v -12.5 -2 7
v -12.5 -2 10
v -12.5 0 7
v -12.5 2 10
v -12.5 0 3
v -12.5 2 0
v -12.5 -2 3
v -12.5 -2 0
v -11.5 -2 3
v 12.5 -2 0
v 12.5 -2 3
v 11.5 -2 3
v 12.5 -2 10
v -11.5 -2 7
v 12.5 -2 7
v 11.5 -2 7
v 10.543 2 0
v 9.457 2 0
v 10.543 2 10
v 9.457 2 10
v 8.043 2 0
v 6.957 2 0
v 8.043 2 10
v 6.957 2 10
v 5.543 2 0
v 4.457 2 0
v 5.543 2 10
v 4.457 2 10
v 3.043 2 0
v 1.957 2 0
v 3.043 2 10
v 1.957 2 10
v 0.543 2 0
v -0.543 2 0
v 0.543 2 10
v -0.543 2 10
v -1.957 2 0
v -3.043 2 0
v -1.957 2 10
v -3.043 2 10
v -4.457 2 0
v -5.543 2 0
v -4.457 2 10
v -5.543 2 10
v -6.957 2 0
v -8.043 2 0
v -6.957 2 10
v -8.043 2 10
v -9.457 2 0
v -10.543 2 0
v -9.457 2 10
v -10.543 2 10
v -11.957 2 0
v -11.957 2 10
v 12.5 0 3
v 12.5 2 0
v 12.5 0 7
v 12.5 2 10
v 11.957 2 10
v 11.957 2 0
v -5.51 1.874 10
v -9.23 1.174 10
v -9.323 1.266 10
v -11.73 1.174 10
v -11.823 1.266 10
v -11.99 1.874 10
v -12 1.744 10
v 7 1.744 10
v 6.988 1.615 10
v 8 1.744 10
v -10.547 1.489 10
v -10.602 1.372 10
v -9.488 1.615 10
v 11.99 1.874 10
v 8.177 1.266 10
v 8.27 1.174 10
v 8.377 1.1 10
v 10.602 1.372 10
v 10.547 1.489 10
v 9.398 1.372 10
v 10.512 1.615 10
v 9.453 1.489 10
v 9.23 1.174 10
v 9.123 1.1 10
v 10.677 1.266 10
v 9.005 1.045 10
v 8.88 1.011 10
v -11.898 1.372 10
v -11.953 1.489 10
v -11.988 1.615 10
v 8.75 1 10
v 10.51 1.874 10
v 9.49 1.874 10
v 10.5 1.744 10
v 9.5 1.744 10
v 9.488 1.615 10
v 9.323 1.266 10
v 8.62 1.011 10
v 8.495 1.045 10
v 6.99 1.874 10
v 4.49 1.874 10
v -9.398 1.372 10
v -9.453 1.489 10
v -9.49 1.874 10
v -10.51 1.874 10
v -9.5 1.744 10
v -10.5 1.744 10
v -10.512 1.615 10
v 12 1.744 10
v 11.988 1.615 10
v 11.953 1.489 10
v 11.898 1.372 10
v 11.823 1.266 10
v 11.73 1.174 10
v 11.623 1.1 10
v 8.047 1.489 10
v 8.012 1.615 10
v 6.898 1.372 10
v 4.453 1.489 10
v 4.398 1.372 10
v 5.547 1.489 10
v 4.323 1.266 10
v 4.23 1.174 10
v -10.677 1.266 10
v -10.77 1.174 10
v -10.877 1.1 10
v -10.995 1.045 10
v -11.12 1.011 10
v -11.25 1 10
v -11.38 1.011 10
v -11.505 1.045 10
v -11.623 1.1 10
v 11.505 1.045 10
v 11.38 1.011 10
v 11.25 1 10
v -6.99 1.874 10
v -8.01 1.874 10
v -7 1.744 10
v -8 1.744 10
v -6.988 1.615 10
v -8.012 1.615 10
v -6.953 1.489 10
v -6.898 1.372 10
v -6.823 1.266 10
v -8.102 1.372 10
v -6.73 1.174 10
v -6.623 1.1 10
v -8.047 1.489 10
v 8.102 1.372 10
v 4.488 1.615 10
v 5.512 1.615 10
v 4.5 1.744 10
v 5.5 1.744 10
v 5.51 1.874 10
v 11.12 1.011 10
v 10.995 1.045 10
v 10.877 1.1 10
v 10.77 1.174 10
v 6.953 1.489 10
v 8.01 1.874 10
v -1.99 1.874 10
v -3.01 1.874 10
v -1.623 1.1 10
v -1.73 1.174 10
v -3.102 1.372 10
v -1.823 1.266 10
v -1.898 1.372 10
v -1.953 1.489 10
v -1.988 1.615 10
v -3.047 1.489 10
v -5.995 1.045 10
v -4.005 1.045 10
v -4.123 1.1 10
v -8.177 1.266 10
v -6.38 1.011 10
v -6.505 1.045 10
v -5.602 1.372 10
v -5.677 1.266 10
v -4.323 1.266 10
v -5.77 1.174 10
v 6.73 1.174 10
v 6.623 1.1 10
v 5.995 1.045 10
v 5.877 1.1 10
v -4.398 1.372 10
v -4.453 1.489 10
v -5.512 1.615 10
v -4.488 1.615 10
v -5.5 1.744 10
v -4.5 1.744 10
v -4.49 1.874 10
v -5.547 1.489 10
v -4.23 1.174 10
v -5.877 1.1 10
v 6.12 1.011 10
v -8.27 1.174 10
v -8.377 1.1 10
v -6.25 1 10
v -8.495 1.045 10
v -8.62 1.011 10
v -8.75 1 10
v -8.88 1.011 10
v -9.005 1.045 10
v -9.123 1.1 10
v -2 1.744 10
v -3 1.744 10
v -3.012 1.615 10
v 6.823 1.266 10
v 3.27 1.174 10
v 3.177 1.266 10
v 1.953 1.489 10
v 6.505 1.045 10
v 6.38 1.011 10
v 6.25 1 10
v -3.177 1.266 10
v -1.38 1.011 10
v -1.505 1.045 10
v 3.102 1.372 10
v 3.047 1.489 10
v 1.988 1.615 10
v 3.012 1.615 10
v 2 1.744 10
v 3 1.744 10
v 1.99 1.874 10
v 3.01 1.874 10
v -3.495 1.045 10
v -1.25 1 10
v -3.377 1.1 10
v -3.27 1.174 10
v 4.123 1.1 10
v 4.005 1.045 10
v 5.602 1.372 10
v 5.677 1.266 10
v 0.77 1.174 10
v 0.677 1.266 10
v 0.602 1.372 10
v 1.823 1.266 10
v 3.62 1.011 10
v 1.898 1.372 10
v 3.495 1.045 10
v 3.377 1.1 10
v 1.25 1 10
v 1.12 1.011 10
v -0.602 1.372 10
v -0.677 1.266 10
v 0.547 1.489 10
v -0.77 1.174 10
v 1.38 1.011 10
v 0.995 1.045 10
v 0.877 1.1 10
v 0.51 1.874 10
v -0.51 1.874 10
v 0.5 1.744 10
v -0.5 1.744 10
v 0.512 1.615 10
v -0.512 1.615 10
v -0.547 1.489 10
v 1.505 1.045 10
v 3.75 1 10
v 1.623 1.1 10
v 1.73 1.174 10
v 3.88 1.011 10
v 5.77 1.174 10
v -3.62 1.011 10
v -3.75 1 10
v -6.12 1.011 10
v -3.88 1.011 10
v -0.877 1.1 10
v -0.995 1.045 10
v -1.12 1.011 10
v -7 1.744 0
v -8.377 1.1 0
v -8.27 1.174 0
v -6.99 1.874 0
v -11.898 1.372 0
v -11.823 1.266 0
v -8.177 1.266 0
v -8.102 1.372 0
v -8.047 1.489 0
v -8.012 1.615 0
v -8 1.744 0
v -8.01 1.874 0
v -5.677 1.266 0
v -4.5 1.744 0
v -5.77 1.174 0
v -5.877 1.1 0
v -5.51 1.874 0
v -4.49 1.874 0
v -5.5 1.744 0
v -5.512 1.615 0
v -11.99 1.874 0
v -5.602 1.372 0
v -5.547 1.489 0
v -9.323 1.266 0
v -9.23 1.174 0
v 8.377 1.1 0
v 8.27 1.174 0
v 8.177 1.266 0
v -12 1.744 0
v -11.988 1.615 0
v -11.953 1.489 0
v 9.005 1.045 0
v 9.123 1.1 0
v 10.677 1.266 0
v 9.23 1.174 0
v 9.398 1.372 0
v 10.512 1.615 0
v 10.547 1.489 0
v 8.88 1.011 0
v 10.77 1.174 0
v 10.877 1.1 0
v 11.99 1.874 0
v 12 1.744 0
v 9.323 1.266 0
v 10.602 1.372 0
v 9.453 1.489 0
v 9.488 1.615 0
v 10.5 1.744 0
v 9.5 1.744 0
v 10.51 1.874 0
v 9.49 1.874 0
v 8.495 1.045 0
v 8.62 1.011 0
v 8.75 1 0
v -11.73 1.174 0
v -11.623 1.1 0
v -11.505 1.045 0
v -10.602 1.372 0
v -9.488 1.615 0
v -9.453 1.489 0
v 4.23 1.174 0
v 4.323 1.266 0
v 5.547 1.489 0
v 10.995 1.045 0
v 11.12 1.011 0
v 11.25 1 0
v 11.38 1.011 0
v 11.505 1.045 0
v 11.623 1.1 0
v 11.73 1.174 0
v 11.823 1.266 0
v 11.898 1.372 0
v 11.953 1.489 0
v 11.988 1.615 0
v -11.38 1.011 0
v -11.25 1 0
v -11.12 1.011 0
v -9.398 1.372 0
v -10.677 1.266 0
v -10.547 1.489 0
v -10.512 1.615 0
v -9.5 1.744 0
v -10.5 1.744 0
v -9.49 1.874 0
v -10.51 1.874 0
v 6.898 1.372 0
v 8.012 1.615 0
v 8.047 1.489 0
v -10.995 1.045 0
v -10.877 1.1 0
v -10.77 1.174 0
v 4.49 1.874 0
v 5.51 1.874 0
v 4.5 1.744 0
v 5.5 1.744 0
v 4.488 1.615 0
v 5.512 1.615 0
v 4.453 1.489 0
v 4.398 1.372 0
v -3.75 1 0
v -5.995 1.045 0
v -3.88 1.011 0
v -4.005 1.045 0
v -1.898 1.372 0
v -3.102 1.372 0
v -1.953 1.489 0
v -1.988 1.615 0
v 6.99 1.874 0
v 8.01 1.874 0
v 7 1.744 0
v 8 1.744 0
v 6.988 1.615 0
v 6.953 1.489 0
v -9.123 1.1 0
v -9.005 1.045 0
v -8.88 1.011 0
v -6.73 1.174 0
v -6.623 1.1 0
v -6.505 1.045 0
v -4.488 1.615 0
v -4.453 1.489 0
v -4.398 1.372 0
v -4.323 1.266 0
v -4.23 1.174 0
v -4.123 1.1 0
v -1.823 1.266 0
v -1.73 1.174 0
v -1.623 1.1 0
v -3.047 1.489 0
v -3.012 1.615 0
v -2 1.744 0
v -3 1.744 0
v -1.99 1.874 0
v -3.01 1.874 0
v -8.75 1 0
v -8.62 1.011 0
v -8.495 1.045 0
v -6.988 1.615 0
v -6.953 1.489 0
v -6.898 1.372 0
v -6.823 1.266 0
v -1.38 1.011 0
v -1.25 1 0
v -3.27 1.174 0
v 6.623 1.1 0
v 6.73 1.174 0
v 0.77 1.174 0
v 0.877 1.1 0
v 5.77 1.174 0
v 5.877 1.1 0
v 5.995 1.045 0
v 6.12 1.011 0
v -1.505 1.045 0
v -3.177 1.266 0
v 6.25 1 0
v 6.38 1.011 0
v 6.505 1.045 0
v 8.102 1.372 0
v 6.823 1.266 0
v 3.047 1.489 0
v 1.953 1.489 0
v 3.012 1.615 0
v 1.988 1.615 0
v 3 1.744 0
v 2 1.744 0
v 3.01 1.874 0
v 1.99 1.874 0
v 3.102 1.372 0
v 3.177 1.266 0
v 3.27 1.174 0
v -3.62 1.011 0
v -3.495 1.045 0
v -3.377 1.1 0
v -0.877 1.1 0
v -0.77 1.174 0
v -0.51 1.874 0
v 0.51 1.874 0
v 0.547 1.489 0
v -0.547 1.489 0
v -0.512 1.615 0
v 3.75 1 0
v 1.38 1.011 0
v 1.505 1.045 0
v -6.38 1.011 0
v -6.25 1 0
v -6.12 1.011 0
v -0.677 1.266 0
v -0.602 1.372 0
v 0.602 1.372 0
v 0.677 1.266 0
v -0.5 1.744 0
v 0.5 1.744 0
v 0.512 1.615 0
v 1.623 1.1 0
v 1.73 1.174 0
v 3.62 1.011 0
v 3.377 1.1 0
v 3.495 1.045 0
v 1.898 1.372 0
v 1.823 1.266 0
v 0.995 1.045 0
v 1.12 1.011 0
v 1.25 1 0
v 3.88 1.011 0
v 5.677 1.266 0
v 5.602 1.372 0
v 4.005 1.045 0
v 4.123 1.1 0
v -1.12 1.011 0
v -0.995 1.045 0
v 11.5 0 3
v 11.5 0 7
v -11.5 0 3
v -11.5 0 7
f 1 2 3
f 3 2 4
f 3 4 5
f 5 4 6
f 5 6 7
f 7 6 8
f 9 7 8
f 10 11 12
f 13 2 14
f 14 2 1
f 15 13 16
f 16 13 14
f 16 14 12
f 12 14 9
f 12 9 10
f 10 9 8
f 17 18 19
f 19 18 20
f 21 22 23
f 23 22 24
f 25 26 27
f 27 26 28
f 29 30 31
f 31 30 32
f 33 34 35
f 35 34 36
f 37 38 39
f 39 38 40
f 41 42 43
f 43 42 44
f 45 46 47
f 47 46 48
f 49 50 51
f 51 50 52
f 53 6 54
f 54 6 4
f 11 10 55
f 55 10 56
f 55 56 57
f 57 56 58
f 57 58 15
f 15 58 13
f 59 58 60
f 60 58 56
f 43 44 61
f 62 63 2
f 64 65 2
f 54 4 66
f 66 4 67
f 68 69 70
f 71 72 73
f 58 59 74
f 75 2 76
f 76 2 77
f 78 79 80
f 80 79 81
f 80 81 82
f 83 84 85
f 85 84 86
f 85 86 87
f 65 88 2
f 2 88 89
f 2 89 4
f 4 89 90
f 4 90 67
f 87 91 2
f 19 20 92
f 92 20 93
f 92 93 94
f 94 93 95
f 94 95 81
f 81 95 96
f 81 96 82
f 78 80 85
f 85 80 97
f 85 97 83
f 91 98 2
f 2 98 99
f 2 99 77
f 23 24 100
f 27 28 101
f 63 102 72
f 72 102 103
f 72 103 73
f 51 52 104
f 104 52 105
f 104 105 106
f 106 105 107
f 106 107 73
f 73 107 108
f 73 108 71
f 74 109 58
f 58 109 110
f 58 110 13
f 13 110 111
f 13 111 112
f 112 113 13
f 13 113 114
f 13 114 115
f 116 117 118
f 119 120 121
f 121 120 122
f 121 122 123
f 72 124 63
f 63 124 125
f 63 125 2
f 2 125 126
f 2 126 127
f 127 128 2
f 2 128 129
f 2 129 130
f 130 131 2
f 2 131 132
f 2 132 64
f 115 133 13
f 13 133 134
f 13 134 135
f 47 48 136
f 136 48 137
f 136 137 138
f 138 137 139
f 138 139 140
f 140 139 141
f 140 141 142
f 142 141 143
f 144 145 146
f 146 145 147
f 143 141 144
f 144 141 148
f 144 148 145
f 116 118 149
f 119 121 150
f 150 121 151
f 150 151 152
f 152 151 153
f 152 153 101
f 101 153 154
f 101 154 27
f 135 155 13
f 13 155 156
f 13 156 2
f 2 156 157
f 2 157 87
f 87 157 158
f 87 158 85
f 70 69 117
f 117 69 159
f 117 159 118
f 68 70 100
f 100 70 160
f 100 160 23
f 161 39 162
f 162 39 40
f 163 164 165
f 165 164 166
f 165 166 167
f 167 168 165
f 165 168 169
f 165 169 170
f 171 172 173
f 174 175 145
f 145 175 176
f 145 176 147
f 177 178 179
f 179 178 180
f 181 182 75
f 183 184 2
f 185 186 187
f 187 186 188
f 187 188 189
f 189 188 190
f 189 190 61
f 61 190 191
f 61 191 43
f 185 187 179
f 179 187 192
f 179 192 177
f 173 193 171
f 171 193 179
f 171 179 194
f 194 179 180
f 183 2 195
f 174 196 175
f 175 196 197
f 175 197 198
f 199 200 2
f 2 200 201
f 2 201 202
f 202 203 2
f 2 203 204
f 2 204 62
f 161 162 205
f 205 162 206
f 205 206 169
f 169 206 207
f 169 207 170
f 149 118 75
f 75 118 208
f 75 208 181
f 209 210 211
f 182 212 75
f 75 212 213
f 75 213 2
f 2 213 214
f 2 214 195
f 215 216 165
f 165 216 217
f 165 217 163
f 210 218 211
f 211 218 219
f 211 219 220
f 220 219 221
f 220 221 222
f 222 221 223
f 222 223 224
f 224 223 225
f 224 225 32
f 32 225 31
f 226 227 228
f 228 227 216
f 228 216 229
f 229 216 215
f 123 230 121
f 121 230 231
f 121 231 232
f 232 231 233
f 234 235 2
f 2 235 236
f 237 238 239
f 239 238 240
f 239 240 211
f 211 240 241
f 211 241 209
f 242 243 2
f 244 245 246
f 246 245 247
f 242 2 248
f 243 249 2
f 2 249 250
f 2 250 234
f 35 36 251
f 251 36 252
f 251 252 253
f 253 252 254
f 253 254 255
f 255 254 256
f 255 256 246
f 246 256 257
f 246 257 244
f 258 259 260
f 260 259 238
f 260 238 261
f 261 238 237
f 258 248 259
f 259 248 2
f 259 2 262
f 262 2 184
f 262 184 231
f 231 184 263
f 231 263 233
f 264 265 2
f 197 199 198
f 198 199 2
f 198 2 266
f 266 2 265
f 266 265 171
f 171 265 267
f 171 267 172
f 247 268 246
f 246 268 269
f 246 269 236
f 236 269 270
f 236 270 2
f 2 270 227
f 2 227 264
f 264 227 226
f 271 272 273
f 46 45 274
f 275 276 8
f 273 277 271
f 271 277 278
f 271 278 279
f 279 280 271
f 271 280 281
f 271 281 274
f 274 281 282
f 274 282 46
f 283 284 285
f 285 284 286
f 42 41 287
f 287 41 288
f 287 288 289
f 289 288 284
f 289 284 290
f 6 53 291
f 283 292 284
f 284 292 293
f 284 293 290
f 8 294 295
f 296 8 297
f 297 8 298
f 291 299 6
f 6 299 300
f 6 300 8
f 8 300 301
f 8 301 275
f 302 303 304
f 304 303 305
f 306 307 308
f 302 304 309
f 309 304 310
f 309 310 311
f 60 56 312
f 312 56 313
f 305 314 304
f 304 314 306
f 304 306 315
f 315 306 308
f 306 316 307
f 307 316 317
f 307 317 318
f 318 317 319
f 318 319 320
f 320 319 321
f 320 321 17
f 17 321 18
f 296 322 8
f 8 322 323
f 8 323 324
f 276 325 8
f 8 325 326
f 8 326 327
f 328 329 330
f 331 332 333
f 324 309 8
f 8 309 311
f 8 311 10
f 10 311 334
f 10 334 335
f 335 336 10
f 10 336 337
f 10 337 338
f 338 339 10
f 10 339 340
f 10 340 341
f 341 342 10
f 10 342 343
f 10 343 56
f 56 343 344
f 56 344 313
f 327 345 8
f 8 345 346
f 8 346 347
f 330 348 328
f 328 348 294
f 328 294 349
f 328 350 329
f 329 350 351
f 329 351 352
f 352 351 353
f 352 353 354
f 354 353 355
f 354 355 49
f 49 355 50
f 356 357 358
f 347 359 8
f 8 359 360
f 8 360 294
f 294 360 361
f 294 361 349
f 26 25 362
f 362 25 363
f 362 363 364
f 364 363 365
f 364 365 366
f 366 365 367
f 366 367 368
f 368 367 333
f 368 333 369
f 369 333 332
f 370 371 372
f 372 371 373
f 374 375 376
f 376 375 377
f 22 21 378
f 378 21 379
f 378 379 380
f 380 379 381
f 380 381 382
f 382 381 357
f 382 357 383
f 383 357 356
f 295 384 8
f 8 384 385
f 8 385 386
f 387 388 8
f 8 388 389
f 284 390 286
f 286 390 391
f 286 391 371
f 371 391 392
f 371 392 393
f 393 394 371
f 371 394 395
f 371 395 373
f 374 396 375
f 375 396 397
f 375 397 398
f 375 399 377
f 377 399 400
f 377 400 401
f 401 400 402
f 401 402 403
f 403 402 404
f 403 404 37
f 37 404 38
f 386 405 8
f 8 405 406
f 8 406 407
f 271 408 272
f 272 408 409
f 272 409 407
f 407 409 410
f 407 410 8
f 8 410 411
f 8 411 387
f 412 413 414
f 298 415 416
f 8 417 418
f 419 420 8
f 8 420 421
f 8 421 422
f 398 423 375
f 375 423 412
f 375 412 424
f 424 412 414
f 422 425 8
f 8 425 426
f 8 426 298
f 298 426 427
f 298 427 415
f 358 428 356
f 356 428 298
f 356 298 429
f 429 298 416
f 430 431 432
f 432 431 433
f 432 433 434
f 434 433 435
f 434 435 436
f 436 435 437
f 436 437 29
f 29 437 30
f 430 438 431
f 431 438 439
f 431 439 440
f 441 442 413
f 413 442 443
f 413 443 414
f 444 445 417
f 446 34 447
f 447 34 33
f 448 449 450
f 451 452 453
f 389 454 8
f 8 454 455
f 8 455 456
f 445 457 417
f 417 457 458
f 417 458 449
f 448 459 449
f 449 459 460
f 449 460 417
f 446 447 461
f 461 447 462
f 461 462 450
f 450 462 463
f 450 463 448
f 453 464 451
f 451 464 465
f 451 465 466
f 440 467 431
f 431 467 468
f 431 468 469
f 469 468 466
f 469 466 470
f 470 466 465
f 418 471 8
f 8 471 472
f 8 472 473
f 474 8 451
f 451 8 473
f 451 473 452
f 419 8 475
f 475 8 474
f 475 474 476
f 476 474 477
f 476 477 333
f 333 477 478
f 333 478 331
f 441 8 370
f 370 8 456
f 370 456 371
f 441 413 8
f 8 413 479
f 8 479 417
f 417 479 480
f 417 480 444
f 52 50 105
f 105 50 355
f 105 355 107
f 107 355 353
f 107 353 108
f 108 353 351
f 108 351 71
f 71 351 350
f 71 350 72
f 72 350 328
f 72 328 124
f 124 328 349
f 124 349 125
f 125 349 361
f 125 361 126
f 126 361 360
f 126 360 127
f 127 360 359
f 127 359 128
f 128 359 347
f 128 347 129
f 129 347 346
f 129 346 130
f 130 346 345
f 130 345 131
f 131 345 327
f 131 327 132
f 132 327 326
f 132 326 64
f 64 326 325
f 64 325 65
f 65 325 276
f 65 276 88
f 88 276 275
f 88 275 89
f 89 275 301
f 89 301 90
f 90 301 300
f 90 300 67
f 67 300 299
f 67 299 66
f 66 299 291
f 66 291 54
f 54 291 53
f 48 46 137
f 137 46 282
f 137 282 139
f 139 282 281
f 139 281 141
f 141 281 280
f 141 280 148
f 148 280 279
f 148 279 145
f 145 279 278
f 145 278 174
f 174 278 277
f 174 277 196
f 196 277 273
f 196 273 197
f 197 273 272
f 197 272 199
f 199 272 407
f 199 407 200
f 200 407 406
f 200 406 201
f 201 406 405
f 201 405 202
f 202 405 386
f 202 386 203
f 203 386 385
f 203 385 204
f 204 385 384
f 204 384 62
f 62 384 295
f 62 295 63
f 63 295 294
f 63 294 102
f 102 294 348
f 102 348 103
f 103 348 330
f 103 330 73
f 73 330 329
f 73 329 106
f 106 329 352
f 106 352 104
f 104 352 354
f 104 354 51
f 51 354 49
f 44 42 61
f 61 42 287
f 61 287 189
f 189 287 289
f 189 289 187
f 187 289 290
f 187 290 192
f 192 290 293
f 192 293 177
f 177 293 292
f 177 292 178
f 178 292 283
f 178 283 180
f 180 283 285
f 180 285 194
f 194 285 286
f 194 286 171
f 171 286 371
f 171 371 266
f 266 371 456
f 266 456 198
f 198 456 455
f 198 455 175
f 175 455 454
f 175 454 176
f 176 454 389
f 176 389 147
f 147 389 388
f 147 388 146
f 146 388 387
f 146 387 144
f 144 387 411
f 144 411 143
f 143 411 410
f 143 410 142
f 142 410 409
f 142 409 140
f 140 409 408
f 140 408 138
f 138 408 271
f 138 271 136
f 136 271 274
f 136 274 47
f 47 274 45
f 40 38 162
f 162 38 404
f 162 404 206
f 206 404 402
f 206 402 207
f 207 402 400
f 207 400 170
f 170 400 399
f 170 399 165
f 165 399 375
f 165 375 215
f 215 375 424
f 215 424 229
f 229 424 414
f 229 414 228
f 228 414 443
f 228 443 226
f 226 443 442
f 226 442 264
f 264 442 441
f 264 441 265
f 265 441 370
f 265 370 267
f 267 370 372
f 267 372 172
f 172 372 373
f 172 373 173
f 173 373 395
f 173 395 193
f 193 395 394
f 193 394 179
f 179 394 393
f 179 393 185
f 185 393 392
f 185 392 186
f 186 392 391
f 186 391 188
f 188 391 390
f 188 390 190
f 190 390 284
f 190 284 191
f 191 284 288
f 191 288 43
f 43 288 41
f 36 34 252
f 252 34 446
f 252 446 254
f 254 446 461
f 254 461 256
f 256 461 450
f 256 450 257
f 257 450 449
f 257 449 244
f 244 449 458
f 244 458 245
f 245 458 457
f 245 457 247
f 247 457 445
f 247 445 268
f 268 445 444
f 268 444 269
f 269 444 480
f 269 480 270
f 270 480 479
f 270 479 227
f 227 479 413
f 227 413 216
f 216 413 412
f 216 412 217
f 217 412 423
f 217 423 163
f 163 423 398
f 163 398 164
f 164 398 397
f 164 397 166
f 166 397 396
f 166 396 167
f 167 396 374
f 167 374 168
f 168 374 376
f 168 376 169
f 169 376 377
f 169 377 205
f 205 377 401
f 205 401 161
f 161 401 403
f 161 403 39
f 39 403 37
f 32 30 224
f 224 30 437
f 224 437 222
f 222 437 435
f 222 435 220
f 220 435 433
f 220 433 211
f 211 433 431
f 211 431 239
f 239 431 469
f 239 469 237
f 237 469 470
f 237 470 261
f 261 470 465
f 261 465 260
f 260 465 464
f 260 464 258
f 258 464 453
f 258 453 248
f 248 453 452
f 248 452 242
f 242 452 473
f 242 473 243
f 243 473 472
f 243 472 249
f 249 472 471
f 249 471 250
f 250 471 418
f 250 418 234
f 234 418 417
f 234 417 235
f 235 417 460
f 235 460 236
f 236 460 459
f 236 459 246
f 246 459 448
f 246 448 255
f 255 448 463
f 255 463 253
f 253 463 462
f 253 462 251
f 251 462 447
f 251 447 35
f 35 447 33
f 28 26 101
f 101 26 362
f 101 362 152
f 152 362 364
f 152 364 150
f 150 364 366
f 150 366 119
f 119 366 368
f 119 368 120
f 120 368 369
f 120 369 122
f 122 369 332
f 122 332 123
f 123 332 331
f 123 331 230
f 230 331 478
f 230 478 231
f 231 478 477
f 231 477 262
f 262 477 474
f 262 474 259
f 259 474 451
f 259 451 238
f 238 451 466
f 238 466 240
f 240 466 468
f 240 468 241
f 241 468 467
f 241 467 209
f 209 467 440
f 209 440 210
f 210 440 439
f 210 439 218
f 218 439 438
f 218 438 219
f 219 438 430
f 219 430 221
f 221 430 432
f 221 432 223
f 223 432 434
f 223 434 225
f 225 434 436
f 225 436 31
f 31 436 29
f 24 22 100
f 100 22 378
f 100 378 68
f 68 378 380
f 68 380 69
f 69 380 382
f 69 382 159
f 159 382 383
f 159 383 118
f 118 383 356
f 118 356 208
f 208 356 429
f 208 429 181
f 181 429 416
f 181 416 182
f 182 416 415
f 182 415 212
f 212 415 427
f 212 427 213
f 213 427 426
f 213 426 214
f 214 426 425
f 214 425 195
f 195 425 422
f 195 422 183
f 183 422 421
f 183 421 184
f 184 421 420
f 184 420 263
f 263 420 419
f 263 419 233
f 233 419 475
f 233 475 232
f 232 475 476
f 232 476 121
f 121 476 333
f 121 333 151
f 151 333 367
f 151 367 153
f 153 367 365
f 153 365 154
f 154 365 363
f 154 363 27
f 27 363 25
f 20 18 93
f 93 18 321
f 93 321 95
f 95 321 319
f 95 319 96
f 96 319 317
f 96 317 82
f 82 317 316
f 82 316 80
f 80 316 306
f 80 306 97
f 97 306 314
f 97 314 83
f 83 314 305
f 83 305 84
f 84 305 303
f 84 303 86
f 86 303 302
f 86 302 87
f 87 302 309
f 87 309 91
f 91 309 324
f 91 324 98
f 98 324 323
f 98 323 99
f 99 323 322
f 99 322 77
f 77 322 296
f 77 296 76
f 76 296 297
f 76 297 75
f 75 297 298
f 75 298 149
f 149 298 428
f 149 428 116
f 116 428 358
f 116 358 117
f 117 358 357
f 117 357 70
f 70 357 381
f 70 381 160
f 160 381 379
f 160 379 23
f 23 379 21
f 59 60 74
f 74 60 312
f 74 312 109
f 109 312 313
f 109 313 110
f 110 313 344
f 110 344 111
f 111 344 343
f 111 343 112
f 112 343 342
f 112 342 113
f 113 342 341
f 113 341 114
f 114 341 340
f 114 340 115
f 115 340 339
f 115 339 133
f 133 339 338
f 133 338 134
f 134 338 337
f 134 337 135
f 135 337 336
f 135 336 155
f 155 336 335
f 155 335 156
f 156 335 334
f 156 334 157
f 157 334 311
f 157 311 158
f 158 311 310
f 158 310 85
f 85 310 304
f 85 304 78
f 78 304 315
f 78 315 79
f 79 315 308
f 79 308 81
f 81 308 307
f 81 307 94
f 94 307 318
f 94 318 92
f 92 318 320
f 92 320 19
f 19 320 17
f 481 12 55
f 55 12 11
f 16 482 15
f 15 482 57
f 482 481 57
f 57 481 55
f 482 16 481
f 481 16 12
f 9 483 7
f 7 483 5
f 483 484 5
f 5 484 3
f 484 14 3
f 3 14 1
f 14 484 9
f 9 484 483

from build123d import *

# Parameters (mm, degrees)
SKETCH1_W           = 25
SKETCH1_H           = 4
BOSS_EXTRUDE1_DEPTH = 10
SKETCH2_R           = 0.75
CUT_EXTRUDE1_DEPTH  = 17.132265805
SKETCH4_W           = 4
SKETCH4_H           = 2
CUT_EXTRUDE2_DEPTH  = 1


with BuildPart() as part:
    # Sketch1 → Boss-Extrude1 (new body)
    with BuildSketch(Plane.XY):
        Rectangle(SKETCH1_W, SKETCH1_H)
    extrude(amount=BOSS_EXTRUDE1_DEPTH)

    # Sketch2 → Cut-Extrude1 (cut, through all)
    with BuildSketch(Plane(origin=(0, 0, 0), x_dir=(-1, 0, 0), z_dir=(0, 0, -1))):
        with Locations((-11.25, 1.75)):
            Circle(SKETCH2_R)
        with Locations((-8.75, 1.75)):
            Circle(SKETCH2_R)
        with Locations((-6.25, 1.75)):
            Circle(SKETCH2_R)
        with Locations((-3.75, 1.75)):
            Circle(SKETCH2_R)
        with Locations((-1.25, 1.75)):
            Circle(SKETCH2_R)
        with Locations((1.25, 1.75)):
            Circle(SKETCH2_R)
        with Locations((3.75, 1.75)):
            Circle(SKETCH2_R)
        with Locations((6.25, 1.75)):
            Circle(SKETCH2_R)
        with Locations((8.75, 1.75)):
            Circle(SKETCH2_R)
        with Locations((11.25, 1.75)):
            Circle(SKETCH2_R)
    extrude(amount=-CUT_EXTRUDE1_DEPTH, mode=Mode.SUBTRACT)

    # Sketch4 → Cut-Extrude2 (cut)
    with BuildSketch(Plane(origin=(12.5, 0, 0), x_dir=(0, 0, -1), z_dir=(1, 0, 0))):
        with Locations((-5, -1)):
            Rectangle(SKETCH4_W, SKETCH4_H)
    cut_extrude2 = extrude(amount=-CUT_EXTRUDE2_DEPTH, mode=Mode.SUBTRACT)

    # Mirror1: Cut-Extrude2 across plane
    add(cut_extrude2.mirror(Plane(origin=(0, 0, 0), x_dir=(0, 0, 1), z_dir=(1, 0, 0))), mode=Mode.SUBTRACT)


solid = part.part
